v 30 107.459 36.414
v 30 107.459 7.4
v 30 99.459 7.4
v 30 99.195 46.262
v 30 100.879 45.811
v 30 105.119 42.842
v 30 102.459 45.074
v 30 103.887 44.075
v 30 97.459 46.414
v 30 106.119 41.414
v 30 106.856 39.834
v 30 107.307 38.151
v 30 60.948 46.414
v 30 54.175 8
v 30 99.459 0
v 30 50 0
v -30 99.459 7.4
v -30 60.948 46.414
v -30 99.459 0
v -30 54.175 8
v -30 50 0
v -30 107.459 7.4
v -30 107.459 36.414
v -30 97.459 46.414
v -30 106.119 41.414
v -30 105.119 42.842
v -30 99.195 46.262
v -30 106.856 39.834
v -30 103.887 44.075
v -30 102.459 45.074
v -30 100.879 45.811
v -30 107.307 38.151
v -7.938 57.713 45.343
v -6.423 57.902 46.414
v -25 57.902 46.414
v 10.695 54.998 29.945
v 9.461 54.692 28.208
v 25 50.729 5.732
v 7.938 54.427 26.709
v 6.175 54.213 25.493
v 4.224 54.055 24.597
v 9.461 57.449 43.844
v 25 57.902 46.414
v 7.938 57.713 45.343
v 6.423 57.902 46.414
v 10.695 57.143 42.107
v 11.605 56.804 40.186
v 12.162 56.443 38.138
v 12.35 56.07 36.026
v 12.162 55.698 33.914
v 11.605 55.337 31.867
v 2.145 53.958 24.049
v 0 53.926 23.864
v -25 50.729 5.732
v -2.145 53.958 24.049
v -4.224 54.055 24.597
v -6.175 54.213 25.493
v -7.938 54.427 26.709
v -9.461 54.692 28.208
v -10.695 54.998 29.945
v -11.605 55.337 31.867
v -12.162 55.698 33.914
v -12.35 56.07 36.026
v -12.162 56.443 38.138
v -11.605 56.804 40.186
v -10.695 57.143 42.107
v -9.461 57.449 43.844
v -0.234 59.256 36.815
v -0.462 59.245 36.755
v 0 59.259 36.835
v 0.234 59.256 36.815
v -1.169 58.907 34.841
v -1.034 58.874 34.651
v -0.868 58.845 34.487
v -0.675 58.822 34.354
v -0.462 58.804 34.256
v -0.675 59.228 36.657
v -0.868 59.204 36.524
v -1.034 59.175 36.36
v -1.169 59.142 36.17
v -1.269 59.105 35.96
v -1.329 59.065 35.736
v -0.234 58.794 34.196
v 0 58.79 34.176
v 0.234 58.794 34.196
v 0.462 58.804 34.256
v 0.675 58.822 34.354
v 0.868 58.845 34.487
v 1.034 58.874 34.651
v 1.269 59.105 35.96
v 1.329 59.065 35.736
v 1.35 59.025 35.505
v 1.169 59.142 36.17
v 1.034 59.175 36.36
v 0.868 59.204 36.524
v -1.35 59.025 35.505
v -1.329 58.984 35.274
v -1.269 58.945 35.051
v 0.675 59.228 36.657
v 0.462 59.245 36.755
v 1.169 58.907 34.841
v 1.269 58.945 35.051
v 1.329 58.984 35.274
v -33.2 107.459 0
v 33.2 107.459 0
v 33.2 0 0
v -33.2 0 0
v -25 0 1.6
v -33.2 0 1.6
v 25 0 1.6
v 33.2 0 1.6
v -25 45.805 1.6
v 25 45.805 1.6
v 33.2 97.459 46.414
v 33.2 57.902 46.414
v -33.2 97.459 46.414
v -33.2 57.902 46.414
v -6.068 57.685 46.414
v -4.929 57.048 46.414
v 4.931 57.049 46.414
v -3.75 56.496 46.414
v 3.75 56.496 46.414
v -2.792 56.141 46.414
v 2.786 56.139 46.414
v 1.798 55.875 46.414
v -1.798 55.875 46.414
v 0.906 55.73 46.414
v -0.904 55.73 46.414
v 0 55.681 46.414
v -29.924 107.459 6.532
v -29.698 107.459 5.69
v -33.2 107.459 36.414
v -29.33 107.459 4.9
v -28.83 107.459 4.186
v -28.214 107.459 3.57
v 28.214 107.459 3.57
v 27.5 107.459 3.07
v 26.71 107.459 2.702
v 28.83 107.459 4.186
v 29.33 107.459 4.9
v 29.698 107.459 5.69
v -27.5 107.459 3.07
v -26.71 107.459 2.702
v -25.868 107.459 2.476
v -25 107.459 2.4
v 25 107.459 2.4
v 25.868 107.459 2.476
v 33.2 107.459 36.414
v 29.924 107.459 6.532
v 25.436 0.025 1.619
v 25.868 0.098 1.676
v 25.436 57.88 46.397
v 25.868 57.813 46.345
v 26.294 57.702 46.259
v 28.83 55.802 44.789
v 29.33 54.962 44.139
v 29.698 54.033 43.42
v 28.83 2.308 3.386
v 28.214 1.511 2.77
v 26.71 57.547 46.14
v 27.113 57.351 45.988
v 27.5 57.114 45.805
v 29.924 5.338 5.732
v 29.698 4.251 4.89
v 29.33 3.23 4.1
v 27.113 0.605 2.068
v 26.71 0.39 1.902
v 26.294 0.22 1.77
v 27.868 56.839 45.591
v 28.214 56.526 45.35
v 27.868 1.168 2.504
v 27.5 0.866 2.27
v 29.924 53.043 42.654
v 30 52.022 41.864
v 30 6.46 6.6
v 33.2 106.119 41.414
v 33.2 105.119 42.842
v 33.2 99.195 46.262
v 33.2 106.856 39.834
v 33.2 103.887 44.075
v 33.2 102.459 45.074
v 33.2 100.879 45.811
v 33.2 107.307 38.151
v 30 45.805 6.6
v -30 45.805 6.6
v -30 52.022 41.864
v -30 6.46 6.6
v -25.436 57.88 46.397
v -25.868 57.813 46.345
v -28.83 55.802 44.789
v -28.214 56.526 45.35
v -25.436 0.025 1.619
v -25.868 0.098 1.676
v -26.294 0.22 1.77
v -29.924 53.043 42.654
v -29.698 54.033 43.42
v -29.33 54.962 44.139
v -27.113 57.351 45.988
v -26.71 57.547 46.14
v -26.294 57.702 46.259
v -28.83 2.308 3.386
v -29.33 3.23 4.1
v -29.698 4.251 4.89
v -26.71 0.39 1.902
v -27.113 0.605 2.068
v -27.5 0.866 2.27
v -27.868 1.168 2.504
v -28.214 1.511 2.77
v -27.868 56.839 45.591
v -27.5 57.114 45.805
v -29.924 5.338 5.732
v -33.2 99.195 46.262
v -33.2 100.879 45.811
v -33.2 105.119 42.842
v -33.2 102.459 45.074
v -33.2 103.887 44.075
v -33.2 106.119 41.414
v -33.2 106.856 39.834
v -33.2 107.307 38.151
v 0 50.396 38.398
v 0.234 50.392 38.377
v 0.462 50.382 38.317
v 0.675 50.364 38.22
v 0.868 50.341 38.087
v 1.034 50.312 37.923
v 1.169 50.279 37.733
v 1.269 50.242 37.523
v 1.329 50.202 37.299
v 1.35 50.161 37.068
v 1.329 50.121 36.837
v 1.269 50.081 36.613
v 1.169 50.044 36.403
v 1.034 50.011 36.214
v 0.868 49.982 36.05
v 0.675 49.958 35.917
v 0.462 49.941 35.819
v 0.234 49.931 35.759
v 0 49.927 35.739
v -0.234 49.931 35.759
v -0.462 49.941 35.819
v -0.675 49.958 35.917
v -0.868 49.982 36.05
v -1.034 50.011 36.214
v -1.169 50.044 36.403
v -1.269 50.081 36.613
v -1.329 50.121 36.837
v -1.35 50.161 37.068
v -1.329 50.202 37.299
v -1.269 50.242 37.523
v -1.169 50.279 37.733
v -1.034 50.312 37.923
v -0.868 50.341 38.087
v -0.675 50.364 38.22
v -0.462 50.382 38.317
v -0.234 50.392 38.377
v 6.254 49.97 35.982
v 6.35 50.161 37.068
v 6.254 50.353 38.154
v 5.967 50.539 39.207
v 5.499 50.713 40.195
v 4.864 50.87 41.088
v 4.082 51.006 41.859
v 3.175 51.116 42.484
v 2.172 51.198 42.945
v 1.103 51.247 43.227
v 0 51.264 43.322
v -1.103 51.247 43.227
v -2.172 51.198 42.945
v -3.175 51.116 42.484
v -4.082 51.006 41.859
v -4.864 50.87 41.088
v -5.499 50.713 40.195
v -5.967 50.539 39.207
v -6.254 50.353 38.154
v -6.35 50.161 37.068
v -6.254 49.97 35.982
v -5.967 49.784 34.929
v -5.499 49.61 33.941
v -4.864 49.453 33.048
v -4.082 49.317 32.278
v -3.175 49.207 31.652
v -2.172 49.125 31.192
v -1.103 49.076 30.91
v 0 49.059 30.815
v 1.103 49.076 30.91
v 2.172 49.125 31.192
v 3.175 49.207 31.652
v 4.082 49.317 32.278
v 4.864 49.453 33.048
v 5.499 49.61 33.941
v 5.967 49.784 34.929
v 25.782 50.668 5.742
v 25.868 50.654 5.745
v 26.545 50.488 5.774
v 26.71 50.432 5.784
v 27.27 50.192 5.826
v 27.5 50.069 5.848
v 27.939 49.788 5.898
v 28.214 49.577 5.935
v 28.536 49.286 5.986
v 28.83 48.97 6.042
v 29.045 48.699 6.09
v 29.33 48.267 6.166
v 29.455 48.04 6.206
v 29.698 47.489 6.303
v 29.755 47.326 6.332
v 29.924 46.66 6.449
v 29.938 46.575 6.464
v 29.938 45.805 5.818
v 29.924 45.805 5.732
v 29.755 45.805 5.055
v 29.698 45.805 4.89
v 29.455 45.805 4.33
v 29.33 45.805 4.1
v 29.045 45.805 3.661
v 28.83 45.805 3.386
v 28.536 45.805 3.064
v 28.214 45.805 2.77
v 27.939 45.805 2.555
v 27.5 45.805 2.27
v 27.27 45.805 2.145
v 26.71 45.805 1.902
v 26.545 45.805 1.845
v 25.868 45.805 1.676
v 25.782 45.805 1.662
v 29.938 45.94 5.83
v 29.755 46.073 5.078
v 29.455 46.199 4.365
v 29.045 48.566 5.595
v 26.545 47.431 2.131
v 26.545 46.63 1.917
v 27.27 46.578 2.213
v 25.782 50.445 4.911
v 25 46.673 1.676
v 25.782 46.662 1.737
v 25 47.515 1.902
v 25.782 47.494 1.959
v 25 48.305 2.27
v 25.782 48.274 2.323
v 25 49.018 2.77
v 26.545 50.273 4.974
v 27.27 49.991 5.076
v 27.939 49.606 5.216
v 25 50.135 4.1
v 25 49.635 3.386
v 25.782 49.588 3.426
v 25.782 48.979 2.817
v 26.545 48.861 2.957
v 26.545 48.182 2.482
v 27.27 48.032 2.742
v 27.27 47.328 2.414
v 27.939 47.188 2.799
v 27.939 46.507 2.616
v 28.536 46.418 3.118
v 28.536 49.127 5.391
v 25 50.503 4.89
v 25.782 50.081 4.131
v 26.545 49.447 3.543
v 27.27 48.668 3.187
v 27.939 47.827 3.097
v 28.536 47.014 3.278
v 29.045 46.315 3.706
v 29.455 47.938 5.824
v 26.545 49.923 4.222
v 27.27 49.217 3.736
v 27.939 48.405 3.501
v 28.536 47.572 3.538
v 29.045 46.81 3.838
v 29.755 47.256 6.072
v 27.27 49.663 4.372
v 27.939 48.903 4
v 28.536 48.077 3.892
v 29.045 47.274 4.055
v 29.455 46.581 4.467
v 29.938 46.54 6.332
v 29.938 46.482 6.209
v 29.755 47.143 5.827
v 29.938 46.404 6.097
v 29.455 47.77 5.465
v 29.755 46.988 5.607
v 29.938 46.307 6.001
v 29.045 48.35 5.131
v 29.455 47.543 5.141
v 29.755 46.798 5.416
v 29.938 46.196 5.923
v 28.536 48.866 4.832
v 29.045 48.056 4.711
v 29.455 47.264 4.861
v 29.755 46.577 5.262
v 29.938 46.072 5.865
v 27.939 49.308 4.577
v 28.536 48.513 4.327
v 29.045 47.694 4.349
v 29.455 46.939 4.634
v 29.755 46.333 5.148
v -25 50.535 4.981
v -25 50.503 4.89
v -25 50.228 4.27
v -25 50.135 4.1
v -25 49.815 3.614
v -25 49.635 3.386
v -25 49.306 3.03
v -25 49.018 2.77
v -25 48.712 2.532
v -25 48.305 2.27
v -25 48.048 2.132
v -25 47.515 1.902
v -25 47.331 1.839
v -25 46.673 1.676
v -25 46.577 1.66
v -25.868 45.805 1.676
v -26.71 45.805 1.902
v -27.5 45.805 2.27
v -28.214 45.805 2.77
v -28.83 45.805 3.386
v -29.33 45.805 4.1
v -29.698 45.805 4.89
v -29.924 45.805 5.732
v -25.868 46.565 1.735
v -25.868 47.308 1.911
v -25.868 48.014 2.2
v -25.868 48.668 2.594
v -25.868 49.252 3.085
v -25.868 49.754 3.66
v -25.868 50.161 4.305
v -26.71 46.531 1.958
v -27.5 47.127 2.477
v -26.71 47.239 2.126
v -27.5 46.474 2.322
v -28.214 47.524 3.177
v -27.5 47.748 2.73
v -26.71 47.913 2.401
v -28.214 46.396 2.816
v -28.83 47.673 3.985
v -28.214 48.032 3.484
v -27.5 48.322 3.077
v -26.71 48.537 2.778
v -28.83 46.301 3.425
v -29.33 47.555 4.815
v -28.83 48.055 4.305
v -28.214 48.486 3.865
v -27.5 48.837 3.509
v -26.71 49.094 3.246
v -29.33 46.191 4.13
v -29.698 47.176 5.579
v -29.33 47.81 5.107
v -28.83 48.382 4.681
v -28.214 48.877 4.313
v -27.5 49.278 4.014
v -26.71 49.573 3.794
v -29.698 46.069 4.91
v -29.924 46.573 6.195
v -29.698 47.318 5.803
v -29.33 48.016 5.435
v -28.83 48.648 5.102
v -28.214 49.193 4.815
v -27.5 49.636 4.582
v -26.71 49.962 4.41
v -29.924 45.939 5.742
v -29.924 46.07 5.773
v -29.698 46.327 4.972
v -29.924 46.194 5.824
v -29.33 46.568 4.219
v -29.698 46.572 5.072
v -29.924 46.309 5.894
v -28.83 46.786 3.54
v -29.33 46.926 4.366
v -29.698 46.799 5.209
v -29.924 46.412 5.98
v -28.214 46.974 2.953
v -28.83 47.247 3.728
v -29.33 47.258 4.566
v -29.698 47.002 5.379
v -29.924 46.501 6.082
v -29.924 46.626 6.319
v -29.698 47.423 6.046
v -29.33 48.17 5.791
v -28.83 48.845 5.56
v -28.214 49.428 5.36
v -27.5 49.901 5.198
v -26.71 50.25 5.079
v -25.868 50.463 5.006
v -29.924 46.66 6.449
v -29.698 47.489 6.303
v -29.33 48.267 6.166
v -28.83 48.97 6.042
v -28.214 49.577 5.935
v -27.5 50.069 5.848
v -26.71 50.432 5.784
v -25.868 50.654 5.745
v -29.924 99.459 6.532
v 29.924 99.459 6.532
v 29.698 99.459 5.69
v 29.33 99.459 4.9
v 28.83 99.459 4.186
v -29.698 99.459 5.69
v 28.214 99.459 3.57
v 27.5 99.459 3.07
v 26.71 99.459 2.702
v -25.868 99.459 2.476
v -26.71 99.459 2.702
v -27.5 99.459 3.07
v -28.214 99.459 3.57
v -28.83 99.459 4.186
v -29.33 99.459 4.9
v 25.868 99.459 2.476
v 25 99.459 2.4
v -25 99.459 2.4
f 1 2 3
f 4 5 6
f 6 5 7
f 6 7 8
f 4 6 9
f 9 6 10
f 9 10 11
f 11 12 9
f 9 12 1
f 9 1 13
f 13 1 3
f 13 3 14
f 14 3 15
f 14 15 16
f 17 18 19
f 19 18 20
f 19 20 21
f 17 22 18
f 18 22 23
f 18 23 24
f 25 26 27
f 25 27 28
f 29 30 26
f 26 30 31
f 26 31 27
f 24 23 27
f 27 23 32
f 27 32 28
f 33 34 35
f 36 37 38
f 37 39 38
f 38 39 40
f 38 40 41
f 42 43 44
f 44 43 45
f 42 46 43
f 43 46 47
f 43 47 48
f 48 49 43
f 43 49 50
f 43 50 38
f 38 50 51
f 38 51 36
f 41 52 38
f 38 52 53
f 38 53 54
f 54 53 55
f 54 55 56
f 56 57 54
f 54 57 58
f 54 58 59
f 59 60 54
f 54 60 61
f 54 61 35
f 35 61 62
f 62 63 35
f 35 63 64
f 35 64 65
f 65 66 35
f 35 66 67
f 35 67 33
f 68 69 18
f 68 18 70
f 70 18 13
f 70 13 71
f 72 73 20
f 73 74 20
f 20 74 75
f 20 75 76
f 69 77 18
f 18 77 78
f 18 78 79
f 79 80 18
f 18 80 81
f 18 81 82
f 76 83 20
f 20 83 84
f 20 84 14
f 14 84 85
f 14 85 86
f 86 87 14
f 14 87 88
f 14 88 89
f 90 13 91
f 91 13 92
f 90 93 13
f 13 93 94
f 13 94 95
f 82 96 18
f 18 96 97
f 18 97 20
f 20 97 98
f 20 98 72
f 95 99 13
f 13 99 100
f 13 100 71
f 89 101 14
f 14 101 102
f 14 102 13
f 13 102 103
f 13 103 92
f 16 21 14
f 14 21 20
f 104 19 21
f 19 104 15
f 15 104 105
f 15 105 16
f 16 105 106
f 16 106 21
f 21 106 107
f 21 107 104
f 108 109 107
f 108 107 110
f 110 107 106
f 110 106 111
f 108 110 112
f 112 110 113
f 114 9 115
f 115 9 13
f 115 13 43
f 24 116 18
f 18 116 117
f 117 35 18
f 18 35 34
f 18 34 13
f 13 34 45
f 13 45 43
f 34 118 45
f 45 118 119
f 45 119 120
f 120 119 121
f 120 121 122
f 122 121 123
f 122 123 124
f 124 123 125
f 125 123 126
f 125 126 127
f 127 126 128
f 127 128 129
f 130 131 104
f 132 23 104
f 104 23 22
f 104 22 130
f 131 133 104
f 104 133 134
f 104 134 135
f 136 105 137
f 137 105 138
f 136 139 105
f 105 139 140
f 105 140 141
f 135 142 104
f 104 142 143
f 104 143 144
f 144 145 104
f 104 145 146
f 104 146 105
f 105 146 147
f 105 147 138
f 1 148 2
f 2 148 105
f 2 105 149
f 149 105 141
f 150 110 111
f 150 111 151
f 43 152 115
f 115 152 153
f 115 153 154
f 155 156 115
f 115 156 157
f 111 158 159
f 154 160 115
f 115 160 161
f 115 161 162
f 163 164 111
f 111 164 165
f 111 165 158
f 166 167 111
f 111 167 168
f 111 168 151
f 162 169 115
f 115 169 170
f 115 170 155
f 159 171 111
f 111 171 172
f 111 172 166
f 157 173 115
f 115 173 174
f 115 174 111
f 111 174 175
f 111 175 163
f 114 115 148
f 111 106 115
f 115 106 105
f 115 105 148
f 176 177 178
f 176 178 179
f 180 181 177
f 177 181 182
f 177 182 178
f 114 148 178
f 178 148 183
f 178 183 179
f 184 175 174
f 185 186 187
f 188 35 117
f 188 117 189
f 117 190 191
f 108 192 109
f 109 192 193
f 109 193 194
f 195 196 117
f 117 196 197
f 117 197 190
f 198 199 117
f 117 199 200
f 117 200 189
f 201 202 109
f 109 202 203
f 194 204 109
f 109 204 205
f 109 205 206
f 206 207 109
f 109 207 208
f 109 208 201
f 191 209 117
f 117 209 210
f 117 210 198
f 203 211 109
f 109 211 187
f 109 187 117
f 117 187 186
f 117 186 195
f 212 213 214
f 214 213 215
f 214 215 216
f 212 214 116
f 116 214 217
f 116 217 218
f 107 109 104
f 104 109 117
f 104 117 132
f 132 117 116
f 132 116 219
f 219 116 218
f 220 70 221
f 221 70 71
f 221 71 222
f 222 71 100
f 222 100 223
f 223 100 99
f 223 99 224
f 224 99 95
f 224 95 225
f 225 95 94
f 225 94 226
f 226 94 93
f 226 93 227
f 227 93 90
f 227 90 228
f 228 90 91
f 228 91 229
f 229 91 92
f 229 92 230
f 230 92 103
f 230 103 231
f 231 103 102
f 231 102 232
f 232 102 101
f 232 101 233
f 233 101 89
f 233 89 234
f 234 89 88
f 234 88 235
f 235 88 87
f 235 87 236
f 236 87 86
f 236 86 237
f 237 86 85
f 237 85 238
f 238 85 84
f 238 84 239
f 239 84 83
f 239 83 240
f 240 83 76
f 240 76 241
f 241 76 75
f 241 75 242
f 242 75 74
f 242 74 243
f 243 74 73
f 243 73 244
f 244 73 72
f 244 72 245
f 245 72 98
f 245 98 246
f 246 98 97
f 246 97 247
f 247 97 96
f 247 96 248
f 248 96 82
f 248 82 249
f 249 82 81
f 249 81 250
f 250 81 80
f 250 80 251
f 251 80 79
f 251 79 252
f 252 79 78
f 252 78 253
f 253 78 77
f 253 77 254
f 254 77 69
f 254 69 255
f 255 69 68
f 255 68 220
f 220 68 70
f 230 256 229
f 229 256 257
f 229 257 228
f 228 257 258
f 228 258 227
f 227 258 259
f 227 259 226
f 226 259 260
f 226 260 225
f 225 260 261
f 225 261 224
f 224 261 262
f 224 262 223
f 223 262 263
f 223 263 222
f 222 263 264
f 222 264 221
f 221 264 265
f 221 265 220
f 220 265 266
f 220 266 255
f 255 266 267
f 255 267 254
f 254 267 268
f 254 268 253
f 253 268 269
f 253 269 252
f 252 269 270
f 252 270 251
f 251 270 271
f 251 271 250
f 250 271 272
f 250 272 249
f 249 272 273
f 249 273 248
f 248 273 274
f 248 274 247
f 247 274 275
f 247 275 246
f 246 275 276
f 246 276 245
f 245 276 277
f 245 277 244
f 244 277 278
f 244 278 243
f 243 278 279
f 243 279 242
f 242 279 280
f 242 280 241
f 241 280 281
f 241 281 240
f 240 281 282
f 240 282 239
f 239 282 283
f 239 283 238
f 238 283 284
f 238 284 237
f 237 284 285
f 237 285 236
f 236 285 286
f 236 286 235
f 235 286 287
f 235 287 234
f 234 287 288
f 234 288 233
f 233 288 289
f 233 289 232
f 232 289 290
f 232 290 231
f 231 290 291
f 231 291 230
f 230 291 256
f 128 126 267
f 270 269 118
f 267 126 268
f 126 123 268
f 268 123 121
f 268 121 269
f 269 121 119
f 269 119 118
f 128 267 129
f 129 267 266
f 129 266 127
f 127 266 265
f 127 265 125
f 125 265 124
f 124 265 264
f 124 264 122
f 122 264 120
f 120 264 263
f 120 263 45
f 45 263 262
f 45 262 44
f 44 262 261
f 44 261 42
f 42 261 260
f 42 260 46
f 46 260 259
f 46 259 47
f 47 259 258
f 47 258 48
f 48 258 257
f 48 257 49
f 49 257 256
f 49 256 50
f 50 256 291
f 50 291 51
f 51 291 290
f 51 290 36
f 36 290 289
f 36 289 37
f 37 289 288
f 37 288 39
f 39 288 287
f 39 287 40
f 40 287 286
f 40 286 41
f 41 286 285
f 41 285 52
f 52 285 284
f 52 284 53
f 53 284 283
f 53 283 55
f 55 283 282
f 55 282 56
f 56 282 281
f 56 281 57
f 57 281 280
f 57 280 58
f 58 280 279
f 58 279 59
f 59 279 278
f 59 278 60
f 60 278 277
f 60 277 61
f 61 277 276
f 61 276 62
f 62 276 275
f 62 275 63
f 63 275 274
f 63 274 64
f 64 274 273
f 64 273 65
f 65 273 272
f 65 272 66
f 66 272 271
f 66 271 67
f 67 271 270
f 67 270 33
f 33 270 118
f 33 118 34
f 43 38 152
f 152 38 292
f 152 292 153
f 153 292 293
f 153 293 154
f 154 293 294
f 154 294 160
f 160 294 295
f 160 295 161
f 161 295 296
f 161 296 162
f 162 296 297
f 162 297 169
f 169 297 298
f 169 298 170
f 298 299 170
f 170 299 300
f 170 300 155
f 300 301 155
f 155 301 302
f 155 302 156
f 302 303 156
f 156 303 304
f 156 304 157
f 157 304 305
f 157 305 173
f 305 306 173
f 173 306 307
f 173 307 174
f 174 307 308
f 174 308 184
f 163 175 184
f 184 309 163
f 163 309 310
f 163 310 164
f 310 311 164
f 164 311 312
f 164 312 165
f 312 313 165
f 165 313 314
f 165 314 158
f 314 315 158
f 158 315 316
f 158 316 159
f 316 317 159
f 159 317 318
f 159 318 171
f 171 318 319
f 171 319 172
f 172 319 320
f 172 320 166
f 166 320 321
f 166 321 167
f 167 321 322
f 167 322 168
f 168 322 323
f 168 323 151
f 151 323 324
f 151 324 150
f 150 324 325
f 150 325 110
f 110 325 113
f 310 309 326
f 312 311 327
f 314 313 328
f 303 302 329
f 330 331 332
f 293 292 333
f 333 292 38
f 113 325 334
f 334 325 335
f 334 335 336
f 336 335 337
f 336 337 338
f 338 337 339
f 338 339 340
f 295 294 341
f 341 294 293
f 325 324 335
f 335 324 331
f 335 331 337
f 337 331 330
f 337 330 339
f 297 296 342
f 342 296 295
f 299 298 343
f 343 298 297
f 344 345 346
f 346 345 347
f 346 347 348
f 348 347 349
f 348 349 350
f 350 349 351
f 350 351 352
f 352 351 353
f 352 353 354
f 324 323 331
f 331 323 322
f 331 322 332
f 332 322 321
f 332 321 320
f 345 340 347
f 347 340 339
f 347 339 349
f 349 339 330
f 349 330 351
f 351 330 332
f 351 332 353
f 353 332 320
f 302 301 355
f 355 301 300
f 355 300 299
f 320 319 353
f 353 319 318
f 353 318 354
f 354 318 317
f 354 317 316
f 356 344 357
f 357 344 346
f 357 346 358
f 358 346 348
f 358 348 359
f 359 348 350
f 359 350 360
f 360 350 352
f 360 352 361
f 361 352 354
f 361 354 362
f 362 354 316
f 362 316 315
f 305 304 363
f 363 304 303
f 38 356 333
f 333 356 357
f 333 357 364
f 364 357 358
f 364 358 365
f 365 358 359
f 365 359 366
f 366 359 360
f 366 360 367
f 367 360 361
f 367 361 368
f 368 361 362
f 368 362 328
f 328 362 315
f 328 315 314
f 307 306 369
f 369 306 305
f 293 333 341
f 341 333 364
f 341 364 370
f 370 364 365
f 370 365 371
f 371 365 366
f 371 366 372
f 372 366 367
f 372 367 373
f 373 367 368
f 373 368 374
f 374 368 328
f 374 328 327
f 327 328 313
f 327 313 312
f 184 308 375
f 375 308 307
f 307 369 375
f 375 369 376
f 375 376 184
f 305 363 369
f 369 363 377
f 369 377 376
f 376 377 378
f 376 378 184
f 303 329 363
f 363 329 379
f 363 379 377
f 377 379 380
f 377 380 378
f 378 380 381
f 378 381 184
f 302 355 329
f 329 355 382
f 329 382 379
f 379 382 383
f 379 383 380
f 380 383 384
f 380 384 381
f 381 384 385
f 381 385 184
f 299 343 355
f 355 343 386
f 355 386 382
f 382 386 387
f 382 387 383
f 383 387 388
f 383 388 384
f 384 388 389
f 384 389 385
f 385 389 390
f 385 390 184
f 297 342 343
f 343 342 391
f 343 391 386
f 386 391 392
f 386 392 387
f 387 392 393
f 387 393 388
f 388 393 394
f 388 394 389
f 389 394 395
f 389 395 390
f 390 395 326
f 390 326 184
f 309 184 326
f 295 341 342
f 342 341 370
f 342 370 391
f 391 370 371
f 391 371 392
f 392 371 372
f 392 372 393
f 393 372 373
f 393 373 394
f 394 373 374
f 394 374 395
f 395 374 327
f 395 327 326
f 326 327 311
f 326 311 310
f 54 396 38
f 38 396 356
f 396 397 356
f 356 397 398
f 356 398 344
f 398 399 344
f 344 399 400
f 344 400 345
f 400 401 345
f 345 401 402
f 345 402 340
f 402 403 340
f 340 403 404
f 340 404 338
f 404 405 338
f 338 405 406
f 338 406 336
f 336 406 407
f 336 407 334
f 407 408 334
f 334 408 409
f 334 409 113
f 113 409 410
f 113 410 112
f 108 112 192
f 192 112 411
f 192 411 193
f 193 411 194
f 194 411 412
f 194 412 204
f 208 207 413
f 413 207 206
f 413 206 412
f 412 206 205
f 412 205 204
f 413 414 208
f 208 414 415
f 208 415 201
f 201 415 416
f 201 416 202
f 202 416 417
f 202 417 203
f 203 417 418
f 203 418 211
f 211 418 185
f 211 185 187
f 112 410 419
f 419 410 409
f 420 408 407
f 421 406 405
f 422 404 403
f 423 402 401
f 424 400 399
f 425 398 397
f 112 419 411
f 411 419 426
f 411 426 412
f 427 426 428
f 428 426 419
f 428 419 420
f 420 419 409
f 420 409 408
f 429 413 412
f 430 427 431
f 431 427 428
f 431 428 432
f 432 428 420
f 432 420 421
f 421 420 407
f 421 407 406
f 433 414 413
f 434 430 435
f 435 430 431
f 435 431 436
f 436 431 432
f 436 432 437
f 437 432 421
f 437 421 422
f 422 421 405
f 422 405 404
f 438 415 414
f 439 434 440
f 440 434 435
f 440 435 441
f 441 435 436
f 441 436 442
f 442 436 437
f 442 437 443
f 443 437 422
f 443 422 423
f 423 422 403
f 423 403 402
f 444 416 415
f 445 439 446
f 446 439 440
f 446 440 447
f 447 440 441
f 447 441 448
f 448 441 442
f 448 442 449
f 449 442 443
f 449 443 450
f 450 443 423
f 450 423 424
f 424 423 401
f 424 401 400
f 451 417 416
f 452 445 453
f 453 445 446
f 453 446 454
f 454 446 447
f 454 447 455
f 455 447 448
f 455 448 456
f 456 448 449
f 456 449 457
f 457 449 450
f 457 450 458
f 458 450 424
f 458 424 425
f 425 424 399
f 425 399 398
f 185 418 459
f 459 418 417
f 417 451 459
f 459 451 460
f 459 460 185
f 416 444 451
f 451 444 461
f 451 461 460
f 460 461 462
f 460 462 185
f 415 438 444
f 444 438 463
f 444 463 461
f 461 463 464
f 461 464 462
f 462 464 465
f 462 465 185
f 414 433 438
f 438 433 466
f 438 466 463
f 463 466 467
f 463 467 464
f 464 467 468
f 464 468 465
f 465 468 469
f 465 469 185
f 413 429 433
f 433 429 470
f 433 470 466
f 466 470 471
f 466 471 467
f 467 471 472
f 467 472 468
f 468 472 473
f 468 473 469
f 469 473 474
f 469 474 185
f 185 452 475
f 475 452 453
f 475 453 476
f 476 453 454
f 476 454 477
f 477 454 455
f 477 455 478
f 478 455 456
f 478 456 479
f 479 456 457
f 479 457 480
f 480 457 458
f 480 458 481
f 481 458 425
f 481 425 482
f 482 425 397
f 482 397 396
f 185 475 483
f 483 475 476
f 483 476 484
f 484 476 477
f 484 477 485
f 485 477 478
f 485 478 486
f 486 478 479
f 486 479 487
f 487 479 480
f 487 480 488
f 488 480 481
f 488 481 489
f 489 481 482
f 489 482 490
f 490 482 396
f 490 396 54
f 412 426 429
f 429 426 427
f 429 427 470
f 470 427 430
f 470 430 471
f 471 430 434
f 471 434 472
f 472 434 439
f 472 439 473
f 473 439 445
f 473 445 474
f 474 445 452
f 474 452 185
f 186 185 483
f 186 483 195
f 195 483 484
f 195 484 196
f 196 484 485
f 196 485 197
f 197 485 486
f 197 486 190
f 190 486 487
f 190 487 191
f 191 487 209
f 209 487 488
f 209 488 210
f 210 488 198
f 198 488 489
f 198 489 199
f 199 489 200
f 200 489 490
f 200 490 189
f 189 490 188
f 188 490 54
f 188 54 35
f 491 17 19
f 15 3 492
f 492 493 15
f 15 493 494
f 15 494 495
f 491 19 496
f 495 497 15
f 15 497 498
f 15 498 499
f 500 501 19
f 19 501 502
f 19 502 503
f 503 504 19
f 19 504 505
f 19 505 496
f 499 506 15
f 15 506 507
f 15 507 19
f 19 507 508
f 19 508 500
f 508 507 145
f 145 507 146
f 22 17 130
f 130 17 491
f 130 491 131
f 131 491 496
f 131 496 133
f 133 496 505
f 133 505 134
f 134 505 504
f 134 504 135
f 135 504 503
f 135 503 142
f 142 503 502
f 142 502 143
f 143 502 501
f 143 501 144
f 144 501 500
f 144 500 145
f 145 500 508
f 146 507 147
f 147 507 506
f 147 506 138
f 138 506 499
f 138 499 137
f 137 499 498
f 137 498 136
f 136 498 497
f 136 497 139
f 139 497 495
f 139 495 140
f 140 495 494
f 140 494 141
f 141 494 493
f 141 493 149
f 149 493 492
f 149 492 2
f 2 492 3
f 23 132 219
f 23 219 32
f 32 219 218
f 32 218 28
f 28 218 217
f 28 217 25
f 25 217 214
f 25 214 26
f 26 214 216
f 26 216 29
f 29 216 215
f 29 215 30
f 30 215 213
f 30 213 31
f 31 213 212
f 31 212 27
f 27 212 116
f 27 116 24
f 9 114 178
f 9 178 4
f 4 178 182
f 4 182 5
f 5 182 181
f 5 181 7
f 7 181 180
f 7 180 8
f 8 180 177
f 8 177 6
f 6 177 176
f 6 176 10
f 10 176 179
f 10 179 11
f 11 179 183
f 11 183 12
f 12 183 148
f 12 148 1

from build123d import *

# Parameters (mm, degrees)
BOSS_EXTRUDE1_DEPTH      = 30
BOSS_EXTRUDE1_DEPTH_BACK = 30
BOSS_EXTRUDE2_DEPTH      = 3.2
SKETCH3_R                = 1.35
CUT_EXTRUDE1_DEPTH       = 86.695011246
SKETCH4_R                = 6.35
SKETCH4_R_2              = 1.35
BOSS_EXTRUDE3_DEPTH      = 6
CHAMFER1_SIZE            = 6
FILLET1_R                = 5
SKETCH5_W                = 2.4
SKETCH5_H                = 8
BOSS_EXTRUDE4_DEPTH      = 60
FILLET2_R                = 5
FILLET3_R                = 10


with BuildPart() as part:
    # Sketch1 → Boss-Extrude1 (new, two sides: drawn at the far end of the back side and taken through both)
    with BuildSketch(Plane(origin=(0, 0, 0), x_dir=(0, 0, -1), z_dir=(1, 0, 0)).offset(-BOSS_EXTRUDE1_DEPTH_BACK)):
        Polygon((-8, 54.174772512), (-46.414198462, 60.948232143), (-46.414198462, 57.901952308), (-1.6, 50), (-1.6, 0), (0, 0), (0, 50), align=None)
    extrude(amount=BOSS_EXTRUDE1_DEPTH + BOSS_EXTRUDE1_DEPTH_BACK)

    # Sketch2 → Boss-Extrude2 (add)
    with BuildSketch(Plane(origin=(30, 0, 0), x_dir=(0, 0, -1), z_dir=(1, 0, 0))):
        Polygon((0, 0), (0, 107.45890736), (-46.414198462, 107.45890736), (-46.414198462, 57.901952308), (-1.6, 0), align=None)
    boss_extrude2 = extrude(amount=BOSS_EXTRUDE2_DEPTH)

    # Mirror1: Boss-Extrude2 across plane
    add(boss_extrude2.mirror(Plane(origin=(0, 0, 0), x_dir=(0, 0, 1), z_dir=(1, 0, 0))))

    # Sketch3 → Cut-Extrude1 (cut, through all)
    with BuildSketch(Plane(origin=(0, 51.173122664, -9.023202213), x_dir=(1, 0, 0), z_dir=(0, 0.984807753012208, -0.17364817766693144))):
        with Locations(Location((0, -45.21547888, 0), (0, 0, 270))):
            Circle(SKETCH3_R)
    extrude(amount=-CUT_EXTRUDE1_DEPTH, mode=Mode.SUBTRACT)

    # Sketch4 → Boss-Extrude3 (add)
    with BuildSketch(Plane(origin=(0, 48.218699405, -8.50225768), x_dir=(1, 0, 0), z_dir=(0, -0.9848077530122079, 0.1736481776669319))):
        with Locations(Location((0, 45.21547888, 0), (0, 0, 90))):
            Circle(SKETCH4_R)
        with Locations(Location((0, 45.21547888, 0), (0, 0, 90))):
            Circle(SKETCH4_R_2, mode=Mode.SUBTRACT)
    extrude(amount=BOSS_EXTRUDE3_DEPTH)

    # Chamfer1
    # the kernel refuses this chamfer: 6 mm, written as the material it adds along each edge
    with BuildSketch(Plane(origin=(0, 56.070284915, 36.026296477), x_dir=(0, 0.1736481776669323, 0.9848077530122077), z_dir=(1, 0, 0))) as chamfer1_piece_1_section:
        Polygon((6.35 + CHAMFER1_SIZE, 0), (6.35, CHAMFER1_SIZE), (6.35, 0), align=None)
    chamfer1_piece_1 = revolve(axis=Axis((0, 56.070284915, 36.026296477), (0, -0.9848077530122079, 0.1736481776669319)), mode=Mode.PRIVATE)
    chamfer1_piece_1 = split(chamfer1_piece_1, bisect_by=Plane(origin=(0, 51.643480969, 46.414198462), z_dir=(0, 0, -1)), keep=Keep.TOP, mode=Mode.PRIVATE)
    chamfer1_piece_1 = split(chamfer1_piece_1, bisect_by=Plane(origin=(0, 48.535444939, 27.846718406), z_dir=(0, 0.9848077530122079, -0.1736481776669319)), keep=Keep.TOP, mode=Mode.PRIVATE)
    add(chamfer1_piece_1)

    # Fillet1
    fillet1_edges = [part.edges().sort_by_distance(p)[0] for p in [
        (0, 50, 1.6),
        (-30, 53.950976154, 24.007099231),
        (30, 53.950976154, 24.007099231),
        (-30, 25, 1.6),
        (30, 25, 1.6),
    ]]
    fillet(fillet1_edges, radius=FILLET1_R)

    # Sketch5 → Boss-Extrude4 (add)
    with BuildSketch(Plane.ZY.offset(-30)):
        with Locations((1.2, 103.45890736)):
            Rectangle(SKETCH5_W, SKETCH5_H)
    extrude(amount=BOSS_EXTRUDE4_DEPTH)

    # Fillet2
    fillet2_edges = [part.edges().sort_by_distance(p)[0] for p in [
        (30, 103.45890736, 2.4),
        (-30, 103.45890736, 2.4),
    ]]
    fillet(fillet2_edges, radius=FILLET2_R)

    # Fillet3
    fillet3_edges = [part.edges().sort_by_distance(p)[0] for p in [
        (31.6, 107.45890736, 46.414198462),
        (-31.6, 107.45890736, 46.414198462),
    ]]
    fillet(fillet3_edges, radius=FILLET3_R)


solid = part.part
